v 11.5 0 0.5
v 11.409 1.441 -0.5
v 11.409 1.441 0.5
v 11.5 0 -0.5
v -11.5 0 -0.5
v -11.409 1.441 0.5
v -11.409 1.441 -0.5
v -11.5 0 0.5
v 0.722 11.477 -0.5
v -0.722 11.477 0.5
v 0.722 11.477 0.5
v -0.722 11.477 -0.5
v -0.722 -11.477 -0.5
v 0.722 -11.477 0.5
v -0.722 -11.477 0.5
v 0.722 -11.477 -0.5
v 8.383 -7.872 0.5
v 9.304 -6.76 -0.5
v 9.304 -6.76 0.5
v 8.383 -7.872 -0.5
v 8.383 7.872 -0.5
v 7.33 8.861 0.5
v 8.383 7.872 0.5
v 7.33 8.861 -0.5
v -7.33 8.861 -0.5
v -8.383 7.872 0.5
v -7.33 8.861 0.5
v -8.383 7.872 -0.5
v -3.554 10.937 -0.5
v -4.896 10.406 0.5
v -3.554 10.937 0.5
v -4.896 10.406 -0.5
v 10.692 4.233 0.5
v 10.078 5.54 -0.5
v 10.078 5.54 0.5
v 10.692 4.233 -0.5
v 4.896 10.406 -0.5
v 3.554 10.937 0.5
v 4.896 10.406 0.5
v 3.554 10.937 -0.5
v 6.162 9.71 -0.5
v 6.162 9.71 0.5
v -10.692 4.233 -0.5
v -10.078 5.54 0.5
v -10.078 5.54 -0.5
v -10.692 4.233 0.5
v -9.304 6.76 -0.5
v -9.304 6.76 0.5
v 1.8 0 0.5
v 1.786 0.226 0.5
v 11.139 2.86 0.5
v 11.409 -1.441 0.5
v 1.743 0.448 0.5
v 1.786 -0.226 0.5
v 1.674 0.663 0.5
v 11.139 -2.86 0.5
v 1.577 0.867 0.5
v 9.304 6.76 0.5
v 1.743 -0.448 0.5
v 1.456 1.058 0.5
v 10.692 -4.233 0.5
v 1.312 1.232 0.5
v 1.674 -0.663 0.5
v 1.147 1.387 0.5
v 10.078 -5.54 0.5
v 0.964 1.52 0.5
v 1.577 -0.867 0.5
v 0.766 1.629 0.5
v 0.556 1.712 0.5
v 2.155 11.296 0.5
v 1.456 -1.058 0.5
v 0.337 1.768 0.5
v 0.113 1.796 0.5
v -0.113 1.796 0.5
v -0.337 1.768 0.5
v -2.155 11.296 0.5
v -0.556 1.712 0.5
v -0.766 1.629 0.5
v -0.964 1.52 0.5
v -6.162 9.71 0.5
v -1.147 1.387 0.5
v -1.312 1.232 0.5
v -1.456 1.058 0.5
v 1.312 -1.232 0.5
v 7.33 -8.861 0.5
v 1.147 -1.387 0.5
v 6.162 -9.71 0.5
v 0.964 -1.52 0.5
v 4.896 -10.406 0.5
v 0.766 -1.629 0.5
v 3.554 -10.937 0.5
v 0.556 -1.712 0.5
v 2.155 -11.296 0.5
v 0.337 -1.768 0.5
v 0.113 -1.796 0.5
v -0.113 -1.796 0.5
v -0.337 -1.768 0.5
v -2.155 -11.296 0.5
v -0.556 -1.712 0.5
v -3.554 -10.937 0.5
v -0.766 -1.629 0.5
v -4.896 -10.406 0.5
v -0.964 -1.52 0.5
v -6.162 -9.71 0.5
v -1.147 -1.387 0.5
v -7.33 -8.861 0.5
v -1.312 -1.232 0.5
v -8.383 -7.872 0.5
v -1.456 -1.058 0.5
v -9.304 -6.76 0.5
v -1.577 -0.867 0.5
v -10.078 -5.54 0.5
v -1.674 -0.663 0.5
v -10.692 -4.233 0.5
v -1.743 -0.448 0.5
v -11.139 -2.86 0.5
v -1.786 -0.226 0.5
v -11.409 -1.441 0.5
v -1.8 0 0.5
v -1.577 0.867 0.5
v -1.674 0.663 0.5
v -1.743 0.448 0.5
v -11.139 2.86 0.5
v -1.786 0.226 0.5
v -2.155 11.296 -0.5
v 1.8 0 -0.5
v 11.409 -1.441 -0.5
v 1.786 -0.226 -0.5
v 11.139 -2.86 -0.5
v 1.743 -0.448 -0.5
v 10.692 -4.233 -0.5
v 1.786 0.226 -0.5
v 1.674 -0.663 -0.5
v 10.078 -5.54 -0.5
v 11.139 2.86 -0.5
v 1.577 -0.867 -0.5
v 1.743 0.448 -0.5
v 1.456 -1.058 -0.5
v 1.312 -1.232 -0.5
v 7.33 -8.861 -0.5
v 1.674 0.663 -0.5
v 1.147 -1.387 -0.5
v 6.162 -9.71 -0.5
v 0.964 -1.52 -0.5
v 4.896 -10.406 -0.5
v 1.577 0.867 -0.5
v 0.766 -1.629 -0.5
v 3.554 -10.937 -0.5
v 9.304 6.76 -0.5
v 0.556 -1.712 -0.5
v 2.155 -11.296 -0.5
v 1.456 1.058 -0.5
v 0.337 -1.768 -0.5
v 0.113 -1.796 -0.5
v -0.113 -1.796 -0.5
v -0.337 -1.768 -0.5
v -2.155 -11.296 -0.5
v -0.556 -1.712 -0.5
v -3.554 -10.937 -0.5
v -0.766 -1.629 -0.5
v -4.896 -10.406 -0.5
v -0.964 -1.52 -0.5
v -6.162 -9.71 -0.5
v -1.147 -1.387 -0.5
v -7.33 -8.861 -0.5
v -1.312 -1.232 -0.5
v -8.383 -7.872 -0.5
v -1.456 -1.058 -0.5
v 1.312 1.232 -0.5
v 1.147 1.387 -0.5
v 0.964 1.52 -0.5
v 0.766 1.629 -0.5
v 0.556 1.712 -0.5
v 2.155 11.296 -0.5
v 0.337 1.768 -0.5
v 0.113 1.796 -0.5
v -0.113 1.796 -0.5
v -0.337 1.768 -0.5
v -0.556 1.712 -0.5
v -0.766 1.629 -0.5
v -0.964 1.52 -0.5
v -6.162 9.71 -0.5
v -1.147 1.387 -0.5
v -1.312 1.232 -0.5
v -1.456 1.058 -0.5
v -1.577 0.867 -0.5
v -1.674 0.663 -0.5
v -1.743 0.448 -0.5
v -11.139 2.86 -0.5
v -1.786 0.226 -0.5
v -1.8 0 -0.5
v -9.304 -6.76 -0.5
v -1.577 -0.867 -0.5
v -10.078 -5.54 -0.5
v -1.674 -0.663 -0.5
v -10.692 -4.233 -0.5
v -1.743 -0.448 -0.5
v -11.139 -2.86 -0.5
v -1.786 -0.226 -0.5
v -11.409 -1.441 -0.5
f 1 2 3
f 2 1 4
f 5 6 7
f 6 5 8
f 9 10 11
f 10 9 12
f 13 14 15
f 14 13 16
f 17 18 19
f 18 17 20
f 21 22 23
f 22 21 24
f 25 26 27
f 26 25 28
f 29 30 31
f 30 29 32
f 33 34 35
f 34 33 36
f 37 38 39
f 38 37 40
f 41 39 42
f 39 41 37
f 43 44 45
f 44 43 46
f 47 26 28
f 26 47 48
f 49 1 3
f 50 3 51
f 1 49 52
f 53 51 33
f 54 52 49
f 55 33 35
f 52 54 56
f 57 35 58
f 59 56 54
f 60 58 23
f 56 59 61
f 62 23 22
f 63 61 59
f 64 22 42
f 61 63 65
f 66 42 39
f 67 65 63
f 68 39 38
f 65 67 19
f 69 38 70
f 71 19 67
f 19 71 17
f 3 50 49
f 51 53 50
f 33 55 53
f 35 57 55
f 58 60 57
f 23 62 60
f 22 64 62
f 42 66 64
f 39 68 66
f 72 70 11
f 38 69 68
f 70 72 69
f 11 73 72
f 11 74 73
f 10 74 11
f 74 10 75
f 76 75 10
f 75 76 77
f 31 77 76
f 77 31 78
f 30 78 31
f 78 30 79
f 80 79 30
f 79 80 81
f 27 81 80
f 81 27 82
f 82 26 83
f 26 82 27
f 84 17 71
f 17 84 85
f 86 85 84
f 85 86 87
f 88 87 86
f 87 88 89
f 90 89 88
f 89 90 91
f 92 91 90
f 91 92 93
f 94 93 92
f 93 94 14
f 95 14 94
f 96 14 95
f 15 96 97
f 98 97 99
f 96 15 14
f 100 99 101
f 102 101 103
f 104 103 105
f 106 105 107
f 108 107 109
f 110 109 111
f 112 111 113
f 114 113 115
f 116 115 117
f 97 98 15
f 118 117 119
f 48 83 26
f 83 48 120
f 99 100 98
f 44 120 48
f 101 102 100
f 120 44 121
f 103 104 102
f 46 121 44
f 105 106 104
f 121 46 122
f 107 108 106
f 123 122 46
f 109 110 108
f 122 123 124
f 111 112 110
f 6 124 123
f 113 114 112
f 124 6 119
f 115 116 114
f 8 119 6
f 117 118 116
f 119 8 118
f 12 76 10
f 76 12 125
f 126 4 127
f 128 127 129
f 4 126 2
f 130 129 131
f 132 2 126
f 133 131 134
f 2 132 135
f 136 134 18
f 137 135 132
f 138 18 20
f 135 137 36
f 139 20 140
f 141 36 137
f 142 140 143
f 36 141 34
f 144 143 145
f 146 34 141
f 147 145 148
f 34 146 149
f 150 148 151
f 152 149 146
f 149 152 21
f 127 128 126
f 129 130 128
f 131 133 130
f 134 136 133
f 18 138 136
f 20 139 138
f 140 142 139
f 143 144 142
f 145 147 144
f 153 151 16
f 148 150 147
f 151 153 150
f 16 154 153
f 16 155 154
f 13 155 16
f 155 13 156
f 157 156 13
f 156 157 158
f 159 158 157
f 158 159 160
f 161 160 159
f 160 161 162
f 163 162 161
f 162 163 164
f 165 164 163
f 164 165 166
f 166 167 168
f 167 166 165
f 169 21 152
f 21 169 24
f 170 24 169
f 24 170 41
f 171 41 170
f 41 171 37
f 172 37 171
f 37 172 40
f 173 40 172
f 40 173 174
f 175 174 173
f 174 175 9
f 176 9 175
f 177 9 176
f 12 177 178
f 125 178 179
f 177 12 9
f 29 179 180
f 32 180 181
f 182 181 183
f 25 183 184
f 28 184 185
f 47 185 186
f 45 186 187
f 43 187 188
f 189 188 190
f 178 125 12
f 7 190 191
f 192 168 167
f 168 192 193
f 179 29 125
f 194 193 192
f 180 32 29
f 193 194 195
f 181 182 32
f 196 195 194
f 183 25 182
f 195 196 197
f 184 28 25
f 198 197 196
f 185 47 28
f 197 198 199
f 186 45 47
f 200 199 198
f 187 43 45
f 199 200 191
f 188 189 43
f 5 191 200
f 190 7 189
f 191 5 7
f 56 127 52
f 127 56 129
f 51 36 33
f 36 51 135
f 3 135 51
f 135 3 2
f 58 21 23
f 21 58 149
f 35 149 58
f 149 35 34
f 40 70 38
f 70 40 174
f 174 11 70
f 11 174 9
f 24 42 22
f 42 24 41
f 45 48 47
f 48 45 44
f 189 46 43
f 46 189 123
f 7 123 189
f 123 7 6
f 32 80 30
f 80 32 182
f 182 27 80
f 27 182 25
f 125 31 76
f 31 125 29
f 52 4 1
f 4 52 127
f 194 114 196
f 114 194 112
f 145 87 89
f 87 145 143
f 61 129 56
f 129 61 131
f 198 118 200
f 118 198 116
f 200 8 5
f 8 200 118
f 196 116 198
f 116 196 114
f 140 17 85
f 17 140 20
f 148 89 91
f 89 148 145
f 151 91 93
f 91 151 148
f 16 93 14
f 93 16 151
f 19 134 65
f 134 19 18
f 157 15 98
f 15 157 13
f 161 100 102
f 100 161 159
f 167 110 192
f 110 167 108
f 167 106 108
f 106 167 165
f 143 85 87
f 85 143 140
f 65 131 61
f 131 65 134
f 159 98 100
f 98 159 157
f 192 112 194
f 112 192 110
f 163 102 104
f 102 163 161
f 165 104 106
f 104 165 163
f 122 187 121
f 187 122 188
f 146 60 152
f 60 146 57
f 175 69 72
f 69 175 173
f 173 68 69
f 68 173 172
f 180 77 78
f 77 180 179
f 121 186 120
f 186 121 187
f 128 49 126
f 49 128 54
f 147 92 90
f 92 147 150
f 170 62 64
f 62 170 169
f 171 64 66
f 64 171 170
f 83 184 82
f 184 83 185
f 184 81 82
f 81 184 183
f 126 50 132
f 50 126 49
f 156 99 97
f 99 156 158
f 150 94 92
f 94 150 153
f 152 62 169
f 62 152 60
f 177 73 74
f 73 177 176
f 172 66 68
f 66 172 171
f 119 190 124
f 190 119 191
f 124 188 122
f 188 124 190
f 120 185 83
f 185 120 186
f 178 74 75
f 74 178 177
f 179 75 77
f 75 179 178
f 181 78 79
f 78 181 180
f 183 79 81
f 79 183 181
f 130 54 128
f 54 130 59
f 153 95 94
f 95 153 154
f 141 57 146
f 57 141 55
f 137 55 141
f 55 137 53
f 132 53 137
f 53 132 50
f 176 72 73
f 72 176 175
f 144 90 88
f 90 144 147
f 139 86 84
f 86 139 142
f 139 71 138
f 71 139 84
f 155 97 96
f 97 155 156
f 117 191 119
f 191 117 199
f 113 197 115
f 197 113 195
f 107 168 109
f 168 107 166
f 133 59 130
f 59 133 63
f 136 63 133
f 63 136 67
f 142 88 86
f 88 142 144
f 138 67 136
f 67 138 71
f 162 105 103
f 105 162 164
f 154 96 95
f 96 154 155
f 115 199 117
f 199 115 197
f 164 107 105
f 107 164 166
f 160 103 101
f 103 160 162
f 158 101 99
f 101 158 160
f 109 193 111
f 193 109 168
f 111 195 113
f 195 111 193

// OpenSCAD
$fn = 50;


difference() {
	union() {
		translate(v = [0, 0, -0.5000000000]) {
			cylinder(h = 1, r = 11.5000000000);
		}
	}
	union() {
		translate(v = [0, 0, -100.0000000000]) {
			cylinder(h = 200, r = 1.8000000000);
		}
	}
}
